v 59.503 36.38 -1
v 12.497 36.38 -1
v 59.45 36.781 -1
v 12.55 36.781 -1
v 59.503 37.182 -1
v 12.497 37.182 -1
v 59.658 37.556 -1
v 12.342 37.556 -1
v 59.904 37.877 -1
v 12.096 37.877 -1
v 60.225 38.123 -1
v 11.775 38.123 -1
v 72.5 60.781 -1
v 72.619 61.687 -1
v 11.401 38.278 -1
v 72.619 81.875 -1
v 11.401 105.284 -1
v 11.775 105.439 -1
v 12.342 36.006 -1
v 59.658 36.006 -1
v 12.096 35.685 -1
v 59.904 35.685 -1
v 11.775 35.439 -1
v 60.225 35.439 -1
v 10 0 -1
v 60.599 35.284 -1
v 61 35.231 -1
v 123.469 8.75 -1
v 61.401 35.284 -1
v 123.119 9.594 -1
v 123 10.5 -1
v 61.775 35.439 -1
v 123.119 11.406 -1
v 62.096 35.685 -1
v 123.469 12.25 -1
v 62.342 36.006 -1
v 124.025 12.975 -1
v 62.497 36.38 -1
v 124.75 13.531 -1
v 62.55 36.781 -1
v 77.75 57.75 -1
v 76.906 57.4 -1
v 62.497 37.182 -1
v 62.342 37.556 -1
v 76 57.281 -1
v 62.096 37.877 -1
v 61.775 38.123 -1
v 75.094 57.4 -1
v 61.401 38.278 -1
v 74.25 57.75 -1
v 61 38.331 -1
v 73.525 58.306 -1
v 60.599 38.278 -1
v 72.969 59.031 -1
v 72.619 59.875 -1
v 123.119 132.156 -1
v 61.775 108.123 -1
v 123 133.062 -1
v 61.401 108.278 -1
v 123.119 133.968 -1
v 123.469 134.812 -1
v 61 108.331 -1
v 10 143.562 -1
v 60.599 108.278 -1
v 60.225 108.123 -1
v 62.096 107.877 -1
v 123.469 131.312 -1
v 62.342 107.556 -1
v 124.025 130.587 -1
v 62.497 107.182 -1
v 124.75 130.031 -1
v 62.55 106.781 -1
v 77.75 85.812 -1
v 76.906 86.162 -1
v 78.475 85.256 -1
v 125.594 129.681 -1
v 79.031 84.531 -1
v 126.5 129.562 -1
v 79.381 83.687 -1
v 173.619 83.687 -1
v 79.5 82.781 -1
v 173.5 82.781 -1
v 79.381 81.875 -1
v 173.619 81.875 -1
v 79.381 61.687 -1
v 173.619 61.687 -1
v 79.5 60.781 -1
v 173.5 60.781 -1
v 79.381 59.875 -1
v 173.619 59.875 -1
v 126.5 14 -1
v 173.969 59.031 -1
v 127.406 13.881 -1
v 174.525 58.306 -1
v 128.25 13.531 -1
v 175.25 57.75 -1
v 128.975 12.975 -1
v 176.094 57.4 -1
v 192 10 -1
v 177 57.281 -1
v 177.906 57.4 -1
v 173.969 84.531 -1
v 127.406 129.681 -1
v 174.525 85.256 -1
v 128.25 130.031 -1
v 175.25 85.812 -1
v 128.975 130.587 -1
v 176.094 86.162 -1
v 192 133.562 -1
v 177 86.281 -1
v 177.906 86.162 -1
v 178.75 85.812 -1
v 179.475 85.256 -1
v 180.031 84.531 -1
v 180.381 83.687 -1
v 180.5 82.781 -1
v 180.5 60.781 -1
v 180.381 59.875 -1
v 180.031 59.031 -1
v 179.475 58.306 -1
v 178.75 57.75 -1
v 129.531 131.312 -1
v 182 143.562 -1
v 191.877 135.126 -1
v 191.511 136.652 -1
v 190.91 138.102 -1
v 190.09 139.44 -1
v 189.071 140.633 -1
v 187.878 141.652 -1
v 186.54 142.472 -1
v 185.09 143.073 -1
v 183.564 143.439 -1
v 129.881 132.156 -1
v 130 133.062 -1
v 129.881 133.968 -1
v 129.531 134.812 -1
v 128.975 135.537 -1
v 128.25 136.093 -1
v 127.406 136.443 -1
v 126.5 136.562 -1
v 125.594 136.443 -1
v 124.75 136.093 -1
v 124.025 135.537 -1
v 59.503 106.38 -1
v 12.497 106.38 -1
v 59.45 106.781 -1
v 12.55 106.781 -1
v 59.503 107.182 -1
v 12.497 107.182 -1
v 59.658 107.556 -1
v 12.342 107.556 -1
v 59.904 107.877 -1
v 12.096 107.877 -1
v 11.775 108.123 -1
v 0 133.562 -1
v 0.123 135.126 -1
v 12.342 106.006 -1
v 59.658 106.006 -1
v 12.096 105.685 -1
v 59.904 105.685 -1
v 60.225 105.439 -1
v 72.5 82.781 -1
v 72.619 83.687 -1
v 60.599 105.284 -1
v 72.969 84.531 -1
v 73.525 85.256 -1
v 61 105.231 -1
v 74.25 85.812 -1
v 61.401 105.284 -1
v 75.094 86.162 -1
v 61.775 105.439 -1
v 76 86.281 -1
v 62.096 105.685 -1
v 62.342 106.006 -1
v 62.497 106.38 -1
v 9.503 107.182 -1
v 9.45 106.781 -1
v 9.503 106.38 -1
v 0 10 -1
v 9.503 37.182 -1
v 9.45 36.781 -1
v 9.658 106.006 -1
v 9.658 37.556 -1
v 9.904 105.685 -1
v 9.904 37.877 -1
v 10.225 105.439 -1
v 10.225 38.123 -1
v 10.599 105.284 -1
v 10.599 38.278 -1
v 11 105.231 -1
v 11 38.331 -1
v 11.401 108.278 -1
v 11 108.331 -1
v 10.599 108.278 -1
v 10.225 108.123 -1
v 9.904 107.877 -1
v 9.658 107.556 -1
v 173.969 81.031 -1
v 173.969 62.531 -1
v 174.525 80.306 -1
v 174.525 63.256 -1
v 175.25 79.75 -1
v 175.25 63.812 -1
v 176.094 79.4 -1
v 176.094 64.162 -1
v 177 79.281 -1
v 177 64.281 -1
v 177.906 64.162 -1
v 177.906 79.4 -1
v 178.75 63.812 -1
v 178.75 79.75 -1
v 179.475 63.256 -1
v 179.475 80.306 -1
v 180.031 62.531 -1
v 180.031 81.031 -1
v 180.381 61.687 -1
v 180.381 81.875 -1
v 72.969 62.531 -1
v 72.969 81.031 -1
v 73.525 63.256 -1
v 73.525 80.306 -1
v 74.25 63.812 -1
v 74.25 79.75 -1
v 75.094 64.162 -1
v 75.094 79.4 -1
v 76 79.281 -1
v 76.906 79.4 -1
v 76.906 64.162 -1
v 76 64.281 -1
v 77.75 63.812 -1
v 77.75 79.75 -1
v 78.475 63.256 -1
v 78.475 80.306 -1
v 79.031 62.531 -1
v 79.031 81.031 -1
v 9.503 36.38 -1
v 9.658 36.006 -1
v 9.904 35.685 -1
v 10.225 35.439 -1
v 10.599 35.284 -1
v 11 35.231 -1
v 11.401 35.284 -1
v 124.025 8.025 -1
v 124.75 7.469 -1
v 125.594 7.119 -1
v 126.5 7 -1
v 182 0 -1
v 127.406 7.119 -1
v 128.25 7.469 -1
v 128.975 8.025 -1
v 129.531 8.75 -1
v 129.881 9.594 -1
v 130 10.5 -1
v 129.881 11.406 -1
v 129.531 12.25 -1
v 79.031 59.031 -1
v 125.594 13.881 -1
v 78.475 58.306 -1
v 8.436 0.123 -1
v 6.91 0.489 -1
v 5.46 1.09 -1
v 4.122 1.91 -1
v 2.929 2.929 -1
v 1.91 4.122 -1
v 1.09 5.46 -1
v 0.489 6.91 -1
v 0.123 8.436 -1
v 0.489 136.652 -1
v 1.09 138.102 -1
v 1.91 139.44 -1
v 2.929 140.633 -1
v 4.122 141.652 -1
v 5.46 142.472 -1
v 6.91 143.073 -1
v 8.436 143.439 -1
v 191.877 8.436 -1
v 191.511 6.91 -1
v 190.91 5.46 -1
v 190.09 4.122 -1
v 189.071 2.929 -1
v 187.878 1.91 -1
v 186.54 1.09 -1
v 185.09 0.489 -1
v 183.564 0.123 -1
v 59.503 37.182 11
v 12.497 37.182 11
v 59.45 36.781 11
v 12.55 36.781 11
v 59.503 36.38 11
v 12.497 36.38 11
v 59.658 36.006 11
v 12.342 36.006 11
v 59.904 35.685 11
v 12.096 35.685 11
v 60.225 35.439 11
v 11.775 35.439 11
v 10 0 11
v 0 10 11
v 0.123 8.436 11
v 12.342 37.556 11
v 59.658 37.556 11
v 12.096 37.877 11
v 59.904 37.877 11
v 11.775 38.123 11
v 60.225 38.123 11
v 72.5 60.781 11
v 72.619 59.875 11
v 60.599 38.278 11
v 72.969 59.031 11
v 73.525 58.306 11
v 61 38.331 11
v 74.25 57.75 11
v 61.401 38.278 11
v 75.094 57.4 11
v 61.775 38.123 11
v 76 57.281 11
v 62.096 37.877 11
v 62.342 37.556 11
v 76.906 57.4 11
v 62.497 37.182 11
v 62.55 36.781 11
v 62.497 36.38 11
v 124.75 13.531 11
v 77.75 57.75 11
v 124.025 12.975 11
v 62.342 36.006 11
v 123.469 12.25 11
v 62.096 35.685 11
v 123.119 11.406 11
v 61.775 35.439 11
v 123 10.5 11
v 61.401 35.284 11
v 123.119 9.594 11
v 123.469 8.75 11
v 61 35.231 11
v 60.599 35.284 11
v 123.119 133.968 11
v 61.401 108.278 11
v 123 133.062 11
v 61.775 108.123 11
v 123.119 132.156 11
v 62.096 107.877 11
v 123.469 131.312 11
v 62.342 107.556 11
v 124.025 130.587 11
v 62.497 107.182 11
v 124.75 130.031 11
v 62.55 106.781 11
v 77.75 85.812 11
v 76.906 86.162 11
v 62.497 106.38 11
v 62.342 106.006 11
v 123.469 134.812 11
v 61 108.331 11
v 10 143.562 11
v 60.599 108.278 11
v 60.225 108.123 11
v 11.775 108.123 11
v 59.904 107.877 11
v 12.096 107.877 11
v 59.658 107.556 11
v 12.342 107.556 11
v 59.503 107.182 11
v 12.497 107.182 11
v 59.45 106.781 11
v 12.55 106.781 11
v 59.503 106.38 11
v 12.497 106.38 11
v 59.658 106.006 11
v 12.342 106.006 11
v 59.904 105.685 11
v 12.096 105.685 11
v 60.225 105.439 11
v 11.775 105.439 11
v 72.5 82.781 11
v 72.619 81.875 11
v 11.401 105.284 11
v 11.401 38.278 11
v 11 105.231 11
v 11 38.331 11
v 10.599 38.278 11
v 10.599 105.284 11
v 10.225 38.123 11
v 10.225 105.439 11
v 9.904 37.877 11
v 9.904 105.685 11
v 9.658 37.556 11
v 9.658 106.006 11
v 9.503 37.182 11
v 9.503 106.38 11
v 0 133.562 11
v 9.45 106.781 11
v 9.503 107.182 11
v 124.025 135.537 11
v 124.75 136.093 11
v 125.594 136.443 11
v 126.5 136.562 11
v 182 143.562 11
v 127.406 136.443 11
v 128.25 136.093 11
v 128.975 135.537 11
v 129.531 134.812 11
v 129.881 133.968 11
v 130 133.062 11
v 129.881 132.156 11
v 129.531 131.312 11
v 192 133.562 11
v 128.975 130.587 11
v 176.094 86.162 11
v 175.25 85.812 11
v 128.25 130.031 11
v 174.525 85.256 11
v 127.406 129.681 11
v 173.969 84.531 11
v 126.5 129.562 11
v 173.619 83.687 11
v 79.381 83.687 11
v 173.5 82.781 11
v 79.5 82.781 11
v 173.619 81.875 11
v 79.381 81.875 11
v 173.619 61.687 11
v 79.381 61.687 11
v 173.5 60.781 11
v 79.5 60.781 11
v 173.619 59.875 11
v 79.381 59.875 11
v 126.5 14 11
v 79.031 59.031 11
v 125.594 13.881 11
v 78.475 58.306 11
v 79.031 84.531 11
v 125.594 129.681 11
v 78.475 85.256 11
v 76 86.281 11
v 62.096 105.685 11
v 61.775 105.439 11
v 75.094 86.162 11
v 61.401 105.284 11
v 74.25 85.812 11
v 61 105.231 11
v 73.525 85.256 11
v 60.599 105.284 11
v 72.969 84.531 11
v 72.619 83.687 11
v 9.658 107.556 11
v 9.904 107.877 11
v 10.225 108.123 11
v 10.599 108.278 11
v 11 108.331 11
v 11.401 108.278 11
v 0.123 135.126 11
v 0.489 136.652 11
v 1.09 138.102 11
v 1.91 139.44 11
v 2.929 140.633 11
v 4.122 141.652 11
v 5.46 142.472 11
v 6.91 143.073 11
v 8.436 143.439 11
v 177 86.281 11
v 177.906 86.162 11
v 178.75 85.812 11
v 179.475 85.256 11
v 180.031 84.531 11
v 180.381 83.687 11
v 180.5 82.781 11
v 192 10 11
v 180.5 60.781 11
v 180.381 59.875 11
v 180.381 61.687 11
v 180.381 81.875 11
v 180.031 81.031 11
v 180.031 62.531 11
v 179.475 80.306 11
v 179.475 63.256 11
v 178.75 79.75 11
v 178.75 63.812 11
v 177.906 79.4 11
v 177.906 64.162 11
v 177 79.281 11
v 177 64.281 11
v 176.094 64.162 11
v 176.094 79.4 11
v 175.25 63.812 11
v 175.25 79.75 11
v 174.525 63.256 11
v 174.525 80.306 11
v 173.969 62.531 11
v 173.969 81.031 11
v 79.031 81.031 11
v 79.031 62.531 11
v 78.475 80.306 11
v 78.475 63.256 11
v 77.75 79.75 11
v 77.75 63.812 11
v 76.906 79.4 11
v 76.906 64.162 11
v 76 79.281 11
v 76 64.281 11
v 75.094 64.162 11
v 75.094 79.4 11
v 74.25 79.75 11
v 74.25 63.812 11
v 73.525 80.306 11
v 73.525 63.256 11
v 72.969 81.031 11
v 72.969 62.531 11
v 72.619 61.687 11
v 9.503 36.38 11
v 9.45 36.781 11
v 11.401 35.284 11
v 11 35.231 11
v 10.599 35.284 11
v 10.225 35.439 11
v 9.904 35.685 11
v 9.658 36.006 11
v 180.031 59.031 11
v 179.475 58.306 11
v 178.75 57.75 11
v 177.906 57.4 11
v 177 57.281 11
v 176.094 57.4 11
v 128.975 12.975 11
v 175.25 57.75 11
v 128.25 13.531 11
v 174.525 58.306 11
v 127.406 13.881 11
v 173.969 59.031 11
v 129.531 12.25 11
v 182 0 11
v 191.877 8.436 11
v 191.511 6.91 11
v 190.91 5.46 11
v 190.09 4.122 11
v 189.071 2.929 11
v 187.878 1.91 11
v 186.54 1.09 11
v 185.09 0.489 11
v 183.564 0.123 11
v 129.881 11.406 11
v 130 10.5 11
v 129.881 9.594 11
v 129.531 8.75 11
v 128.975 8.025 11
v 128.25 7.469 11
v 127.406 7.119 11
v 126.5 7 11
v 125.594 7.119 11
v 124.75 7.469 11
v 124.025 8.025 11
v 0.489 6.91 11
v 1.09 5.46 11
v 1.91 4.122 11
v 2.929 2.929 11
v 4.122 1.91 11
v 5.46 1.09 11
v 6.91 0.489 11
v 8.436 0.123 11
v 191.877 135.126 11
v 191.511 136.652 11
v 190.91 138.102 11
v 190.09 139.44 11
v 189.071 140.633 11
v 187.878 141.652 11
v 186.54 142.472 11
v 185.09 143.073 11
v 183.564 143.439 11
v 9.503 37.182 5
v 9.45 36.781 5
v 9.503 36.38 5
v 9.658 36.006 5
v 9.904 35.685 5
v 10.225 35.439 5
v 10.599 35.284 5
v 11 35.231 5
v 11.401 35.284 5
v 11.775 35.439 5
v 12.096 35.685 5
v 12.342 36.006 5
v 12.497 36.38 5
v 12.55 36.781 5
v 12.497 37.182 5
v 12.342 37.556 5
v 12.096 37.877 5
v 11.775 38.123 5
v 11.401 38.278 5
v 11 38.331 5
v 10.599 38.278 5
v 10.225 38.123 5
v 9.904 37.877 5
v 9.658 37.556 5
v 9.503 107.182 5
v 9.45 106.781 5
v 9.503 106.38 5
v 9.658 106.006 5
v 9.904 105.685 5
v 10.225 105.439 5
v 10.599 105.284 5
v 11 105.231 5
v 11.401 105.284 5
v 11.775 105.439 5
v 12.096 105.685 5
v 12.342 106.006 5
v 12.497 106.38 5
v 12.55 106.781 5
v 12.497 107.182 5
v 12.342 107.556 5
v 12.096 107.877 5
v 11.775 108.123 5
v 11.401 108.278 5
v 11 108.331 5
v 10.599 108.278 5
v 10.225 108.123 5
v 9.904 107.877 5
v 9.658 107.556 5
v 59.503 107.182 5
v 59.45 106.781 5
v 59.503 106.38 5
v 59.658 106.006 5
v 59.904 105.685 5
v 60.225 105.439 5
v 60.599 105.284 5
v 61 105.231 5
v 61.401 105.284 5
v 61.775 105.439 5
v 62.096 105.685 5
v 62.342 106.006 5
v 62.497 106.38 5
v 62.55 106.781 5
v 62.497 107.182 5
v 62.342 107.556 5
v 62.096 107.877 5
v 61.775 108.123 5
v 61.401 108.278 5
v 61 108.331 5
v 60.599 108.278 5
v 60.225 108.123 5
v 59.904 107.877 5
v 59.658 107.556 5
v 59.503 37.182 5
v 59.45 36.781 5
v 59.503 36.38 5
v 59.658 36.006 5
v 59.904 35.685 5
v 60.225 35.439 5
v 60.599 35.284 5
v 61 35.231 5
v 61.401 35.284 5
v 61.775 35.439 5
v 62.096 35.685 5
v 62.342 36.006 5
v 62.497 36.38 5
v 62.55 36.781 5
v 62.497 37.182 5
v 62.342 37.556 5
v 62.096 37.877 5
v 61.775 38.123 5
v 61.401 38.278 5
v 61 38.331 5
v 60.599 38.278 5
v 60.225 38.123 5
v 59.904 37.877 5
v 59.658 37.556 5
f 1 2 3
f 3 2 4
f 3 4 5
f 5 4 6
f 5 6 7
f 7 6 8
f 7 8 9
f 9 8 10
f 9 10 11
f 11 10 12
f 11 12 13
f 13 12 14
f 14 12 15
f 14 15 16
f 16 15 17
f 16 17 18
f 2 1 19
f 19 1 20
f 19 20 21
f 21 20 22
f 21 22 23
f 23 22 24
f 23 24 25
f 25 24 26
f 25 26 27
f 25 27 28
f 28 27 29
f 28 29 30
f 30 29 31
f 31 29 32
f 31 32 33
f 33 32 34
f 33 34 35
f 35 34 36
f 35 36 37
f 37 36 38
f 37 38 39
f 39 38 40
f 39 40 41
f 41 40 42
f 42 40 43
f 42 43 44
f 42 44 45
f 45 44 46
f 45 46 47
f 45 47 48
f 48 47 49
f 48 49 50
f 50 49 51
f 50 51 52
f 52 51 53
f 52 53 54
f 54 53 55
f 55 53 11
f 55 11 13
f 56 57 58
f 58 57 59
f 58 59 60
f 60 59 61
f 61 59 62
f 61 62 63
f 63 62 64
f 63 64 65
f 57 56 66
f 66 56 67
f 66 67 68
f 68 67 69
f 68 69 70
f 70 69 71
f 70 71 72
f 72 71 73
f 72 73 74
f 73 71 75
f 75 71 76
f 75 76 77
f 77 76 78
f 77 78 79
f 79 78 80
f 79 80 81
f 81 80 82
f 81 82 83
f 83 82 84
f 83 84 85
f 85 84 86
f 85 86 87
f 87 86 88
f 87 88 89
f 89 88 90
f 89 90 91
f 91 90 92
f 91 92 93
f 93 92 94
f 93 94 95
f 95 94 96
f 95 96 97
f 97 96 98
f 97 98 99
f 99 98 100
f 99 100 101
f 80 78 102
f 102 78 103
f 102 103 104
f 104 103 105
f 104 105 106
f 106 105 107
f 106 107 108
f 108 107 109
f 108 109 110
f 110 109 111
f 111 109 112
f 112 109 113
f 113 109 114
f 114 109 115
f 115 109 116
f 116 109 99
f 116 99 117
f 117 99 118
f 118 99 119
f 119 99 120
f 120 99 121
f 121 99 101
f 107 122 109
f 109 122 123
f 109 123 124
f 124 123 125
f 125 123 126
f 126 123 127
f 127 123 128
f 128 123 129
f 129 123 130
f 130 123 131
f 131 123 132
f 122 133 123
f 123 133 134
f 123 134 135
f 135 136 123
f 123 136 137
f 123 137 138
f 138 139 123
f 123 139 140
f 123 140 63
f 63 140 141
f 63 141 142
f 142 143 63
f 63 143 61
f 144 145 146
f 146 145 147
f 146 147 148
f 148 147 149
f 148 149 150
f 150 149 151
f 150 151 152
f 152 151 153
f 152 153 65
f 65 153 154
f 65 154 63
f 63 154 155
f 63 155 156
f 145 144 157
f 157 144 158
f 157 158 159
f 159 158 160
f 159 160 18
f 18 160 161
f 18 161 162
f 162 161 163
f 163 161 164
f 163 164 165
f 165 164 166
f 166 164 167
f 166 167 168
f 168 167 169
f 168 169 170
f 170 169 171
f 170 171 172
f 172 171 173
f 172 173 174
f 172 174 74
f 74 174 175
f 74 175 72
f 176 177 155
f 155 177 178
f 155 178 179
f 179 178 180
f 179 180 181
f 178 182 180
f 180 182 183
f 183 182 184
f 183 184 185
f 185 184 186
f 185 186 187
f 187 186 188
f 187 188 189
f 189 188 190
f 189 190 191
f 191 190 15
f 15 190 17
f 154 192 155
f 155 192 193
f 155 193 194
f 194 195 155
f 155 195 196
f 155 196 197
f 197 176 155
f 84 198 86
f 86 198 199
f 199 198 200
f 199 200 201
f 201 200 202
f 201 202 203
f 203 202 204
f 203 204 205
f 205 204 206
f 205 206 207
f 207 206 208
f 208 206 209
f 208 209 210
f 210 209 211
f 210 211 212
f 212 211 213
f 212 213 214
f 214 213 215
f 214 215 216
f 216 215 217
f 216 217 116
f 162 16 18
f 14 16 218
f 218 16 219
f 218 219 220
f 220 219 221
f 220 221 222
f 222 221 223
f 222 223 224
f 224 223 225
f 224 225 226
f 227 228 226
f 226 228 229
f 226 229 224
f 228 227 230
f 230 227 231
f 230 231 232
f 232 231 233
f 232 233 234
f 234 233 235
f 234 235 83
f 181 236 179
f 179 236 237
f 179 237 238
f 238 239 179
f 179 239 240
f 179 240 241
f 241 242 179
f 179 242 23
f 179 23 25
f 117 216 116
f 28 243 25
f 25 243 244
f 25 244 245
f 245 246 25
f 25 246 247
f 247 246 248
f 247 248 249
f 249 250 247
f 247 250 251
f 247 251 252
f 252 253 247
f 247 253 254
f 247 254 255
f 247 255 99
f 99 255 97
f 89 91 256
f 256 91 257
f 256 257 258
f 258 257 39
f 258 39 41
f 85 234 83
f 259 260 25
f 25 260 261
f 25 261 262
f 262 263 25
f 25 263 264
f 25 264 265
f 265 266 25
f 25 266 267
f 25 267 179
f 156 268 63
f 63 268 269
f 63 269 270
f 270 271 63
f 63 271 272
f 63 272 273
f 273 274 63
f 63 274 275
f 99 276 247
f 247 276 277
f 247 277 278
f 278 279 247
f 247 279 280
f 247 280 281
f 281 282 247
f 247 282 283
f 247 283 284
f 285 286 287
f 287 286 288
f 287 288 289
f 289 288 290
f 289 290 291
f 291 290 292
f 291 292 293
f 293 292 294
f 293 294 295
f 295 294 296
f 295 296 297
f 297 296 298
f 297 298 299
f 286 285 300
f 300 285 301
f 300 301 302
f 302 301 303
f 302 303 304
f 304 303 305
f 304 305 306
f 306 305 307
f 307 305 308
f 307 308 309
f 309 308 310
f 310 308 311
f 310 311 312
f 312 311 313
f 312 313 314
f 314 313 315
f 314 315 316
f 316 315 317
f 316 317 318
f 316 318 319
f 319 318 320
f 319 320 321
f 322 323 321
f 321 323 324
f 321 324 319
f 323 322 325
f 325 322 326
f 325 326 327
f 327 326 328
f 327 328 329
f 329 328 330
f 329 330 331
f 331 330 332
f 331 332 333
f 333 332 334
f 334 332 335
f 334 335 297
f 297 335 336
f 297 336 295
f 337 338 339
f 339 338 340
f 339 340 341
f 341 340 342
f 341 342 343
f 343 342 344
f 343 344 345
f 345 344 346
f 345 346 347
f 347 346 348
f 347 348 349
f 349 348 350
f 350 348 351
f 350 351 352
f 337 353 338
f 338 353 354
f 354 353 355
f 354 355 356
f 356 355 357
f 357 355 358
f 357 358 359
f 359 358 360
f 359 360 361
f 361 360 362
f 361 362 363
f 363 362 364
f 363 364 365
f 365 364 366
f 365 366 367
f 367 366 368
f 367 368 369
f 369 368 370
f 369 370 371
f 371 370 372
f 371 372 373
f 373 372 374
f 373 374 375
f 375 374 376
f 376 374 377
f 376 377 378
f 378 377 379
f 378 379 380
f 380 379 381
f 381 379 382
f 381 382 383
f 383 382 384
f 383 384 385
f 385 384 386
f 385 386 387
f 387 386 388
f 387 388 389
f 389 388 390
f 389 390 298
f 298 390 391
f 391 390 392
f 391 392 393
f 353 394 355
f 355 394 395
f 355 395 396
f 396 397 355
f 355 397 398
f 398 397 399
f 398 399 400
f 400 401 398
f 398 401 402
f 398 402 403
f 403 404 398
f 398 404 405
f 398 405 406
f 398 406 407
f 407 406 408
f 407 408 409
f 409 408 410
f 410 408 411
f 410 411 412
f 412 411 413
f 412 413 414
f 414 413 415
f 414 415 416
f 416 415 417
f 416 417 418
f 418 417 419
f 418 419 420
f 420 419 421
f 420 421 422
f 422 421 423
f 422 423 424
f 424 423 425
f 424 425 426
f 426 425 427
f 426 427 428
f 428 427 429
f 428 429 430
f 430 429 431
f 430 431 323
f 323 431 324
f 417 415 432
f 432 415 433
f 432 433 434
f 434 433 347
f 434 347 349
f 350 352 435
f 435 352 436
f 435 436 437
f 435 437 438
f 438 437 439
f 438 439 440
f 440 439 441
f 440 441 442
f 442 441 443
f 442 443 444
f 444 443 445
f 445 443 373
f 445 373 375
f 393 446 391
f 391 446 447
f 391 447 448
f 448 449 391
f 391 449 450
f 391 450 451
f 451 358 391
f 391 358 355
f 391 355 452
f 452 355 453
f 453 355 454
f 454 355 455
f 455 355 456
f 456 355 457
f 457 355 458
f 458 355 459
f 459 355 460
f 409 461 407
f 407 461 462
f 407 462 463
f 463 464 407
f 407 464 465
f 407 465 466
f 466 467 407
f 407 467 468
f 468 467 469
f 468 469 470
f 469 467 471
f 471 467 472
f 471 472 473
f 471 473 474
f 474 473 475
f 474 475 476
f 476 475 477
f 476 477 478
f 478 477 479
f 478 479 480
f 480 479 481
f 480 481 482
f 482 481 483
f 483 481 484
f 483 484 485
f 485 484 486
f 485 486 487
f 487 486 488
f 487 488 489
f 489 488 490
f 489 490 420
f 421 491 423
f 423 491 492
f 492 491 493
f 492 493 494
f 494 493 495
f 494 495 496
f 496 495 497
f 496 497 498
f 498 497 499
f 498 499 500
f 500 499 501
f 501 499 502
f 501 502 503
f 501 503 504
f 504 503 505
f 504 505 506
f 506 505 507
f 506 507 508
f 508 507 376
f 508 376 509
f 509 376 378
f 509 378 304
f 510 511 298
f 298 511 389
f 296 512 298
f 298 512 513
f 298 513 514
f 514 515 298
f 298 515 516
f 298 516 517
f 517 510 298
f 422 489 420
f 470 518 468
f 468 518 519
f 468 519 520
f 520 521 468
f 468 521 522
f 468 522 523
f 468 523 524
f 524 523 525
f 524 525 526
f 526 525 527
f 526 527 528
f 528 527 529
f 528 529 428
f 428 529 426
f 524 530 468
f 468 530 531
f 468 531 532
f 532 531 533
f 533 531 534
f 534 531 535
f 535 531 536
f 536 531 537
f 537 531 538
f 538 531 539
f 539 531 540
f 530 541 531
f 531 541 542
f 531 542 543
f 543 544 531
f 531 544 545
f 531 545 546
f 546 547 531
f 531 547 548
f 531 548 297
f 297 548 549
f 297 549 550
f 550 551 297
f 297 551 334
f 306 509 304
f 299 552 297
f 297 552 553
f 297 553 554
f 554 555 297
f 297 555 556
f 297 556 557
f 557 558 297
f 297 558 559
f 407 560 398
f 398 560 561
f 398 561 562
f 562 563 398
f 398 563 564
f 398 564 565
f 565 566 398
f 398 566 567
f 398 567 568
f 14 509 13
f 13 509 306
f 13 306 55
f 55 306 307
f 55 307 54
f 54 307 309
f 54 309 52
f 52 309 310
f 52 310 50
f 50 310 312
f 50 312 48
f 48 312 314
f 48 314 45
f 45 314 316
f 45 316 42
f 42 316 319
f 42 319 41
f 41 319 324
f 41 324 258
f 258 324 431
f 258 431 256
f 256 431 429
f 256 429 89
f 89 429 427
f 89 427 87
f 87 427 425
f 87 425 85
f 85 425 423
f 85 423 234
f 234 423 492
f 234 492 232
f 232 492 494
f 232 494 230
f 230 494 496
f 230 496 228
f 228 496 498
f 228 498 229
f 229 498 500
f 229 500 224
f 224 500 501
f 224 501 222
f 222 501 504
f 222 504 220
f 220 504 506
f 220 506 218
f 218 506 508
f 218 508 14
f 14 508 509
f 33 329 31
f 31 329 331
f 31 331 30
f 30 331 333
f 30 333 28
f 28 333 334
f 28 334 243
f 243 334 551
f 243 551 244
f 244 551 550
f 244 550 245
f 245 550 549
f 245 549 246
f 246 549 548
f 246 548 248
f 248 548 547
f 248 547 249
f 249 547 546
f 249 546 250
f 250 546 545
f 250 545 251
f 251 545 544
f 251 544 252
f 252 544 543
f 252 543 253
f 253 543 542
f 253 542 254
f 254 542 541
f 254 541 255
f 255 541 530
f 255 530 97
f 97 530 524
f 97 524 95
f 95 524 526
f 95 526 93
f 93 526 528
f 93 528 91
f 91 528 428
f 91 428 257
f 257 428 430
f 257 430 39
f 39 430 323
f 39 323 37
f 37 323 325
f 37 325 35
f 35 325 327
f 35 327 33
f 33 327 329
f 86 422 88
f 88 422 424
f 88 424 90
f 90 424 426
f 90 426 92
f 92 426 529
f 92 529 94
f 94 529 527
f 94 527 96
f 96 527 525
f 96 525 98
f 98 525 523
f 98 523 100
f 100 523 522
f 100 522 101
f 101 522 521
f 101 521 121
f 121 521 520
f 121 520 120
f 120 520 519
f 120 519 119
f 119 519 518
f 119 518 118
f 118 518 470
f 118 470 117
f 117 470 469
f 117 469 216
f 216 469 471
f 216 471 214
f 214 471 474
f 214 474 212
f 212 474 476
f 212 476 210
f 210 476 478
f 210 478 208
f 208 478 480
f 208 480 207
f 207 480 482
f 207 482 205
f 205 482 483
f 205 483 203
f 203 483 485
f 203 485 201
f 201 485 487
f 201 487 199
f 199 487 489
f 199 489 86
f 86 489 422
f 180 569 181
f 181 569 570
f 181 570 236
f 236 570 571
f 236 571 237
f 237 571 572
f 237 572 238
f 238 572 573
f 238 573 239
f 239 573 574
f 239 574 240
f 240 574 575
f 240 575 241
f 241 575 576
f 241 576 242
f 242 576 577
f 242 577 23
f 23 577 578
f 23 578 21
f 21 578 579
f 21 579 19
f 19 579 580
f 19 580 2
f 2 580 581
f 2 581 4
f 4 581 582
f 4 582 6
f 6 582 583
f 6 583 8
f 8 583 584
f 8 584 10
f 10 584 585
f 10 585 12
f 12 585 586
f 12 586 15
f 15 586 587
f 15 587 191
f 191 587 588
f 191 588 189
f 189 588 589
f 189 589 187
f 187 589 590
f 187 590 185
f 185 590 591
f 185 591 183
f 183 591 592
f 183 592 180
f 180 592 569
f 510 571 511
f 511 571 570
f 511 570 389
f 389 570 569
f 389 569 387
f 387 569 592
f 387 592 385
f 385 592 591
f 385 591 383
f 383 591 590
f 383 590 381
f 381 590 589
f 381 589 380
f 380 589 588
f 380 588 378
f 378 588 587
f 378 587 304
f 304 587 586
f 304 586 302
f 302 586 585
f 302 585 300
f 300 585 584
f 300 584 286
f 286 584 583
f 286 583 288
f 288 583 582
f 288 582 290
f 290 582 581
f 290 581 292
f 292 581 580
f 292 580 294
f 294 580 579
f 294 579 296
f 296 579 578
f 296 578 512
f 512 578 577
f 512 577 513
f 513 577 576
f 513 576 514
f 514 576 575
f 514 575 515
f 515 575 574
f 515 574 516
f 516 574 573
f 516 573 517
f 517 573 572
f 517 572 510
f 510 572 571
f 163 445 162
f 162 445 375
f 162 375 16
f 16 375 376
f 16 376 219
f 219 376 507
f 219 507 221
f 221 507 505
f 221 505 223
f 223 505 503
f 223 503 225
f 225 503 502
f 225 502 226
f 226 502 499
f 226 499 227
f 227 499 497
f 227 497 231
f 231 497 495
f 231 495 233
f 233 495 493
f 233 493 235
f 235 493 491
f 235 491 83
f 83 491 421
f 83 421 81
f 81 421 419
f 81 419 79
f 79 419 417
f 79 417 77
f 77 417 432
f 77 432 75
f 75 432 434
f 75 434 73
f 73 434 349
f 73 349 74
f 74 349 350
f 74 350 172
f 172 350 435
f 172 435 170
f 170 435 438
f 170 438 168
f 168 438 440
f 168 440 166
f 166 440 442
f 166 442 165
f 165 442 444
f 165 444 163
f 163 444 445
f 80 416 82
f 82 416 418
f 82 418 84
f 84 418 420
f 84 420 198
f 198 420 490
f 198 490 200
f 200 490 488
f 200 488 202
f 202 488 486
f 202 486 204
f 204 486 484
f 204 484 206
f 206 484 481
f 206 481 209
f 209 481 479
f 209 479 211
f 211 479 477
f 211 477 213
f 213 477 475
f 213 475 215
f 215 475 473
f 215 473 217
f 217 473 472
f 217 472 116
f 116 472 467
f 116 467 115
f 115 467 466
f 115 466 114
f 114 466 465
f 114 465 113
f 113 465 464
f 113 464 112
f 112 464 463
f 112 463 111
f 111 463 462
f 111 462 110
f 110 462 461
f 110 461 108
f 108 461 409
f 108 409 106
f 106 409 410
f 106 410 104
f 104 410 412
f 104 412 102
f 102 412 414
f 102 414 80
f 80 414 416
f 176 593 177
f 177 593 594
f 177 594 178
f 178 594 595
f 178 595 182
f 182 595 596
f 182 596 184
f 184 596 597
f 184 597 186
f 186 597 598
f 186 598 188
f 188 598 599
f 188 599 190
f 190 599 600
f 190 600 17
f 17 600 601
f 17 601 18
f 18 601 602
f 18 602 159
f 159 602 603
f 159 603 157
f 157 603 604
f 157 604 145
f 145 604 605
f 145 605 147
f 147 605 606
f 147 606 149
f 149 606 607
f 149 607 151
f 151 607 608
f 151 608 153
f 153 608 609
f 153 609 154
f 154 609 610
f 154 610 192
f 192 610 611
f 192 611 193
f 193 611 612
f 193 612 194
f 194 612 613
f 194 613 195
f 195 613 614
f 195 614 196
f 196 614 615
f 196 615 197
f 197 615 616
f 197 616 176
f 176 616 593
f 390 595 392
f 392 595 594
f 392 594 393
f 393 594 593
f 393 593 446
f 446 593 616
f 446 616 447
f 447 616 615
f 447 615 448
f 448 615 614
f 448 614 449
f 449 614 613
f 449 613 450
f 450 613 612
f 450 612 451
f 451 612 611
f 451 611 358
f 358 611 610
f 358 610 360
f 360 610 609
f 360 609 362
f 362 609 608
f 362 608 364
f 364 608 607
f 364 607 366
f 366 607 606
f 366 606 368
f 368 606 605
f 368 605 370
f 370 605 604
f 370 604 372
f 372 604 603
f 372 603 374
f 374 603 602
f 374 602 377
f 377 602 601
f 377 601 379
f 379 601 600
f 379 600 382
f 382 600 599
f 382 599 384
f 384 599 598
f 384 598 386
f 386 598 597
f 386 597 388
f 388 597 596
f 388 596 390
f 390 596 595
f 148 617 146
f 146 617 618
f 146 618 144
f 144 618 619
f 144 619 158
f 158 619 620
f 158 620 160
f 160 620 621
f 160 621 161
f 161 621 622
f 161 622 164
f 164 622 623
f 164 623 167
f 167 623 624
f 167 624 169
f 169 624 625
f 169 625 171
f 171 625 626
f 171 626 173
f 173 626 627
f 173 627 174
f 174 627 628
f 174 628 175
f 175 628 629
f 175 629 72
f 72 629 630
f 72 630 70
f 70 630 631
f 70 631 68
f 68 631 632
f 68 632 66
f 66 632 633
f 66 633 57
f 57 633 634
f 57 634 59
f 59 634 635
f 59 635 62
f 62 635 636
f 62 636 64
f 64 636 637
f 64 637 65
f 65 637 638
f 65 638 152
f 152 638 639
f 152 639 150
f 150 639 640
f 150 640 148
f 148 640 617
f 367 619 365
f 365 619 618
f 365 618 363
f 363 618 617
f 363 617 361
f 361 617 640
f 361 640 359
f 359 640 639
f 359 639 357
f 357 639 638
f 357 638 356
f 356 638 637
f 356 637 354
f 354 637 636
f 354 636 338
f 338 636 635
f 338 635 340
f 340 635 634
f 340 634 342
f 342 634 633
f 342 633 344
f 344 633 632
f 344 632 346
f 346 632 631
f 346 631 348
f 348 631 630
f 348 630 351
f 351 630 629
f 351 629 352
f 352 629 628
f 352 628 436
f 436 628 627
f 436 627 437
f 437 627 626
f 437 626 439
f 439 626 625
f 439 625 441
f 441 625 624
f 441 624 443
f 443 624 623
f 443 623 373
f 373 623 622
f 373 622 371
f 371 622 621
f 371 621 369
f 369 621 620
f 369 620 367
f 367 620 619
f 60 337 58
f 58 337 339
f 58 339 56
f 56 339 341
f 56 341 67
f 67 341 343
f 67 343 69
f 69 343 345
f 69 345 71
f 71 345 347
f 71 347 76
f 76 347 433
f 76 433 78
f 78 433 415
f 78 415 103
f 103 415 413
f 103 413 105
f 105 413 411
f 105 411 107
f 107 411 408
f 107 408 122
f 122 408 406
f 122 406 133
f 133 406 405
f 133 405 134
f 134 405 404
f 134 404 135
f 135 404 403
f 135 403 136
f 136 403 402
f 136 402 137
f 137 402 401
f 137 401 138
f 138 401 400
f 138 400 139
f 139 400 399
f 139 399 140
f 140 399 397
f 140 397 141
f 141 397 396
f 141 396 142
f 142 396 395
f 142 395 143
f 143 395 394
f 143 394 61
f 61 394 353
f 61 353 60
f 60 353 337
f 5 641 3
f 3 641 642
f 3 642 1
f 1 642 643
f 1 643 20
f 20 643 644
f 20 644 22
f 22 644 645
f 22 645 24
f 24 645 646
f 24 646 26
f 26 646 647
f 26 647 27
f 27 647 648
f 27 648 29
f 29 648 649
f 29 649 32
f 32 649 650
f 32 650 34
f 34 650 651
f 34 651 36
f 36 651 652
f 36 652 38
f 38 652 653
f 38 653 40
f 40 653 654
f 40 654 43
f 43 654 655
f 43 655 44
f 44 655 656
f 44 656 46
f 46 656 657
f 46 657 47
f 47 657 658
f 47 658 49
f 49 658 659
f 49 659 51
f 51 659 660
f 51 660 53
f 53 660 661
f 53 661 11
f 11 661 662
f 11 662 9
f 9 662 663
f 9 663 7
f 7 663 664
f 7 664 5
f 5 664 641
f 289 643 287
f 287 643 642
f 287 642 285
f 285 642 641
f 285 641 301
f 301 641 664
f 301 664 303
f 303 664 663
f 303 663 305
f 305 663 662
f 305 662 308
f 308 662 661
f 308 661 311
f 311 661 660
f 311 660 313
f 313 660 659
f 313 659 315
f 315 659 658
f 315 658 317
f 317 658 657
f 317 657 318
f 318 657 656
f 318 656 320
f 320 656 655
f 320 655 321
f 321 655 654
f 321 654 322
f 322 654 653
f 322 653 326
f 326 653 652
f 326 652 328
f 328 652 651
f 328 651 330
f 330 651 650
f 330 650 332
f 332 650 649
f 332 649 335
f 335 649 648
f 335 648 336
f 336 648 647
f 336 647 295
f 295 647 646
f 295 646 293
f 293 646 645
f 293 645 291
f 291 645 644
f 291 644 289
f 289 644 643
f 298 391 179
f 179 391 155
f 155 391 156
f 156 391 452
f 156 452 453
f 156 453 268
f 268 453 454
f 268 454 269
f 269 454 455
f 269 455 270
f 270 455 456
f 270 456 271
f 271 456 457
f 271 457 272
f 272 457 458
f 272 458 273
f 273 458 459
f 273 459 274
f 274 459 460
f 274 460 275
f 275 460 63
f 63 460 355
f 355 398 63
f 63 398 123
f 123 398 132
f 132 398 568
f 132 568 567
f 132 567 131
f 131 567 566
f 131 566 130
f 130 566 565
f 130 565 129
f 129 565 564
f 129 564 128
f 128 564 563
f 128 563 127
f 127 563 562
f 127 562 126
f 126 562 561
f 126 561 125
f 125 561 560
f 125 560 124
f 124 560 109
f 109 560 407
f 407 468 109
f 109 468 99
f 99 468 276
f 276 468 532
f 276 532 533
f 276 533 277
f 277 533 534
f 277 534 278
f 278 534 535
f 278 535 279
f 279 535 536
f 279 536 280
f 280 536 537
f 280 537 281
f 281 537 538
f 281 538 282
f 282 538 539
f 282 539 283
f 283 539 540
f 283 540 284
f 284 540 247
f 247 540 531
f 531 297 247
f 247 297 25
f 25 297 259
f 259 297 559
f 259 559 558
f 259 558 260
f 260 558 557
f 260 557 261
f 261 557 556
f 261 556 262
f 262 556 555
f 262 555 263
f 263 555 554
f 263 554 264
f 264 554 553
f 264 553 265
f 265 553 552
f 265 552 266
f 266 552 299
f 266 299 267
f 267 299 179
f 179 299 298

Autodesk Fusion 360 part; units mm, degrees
sketch "Sketch1" plane through (0, 0, 0) normal (0, 0, 1) x (1, 0, 0)
  line L0 (10, 0) -> (182, 0)
  line L1 (192, 10) -> (192, 133.562)
  line L2 (182, 143.562) -> (10, 143.562)
  line L3 (0, 133.562) -> (0, 10)
  line L4 (126.5, 133.062) -> (126.5, 10.5)
  circle A0 centre (126.5, 133.062) radius 3.5
  circle A1 centre (126.5, 10.5) radius 3.5
  line L5 (126.5, 71.781) -> (192, 71.781)
  line L6 (177, 71.781) -> (76, 71.781)
  line L7 (76, 82.781) -> (76, 60.781)
  circle A2 centre (76, 82.781) radius 3.5
  circle A3 centre (76, 60.781) radius 3.5
  line L8 (177, 82.781) -> (177, 60.781)
  circle A4 centre (177, 82.781) radius 3.5
  circle A5 centre (177, 60.781) radius 3.5
  line L9 (11, 106.781) -> (61, 106.781)
  line L10 (61, 106.781) -> (61, 36.781)
  line L11 (61, 36.781) -> (11, 36.781)
  line L12 (11, 36.781) -> (11, 106.781)
  line L13 (11, 71.781) -> (0, 71.781)
  circle A6 centre (61, 106.781) radius 1.55
  circle A7 centre (11, 106.781) radius 1.55
  circle A8 centre (11, 36.781) radius 1.55
  circle A9 centre (61, 36.781) radius 1.55
  arc A10 (10, 143.562) -> (0, 133.562) centre (10, 133.562) ccw
  arc A11 (192, 133.562) -> (182, 143.562) centre (182, 133.562) ccw
  arc A12 (182, 0) -> (192, 10) centre (182, 10) ccw
  arc A13 (0, 10) -> (10, 0) centre (10, 10) ccw
  point P0 (192, 0)
  point P1 (192, 143.562)
  point P2 (76, 71.781)
  point P3 (126.5, 71.781)
  dimension "d1" = 143.562
  dimension "d3" = 7
  dimension "d4" = 7
  dimension "d5" = 122.562
  dimension "d6" = 90
  dimension "d7" = 101
  dimension "d8" = 22
  dimension "d9" = 7
  dimension "d10" = 7
  dimension "d11" = 15
  dimension "d12" = 50
  dimension "d13" = 70
  dimension "d14" = 15
  dimension "d15" = 90
  dimension "d16" = 3.1
  dimension "d17" = 3.1
  dimension "d18" = 3.1
  dimension "d19" = 3.1
  dimension "d20" = 10
  dimension "d21" = 10
  dimension "d22" = 10
  dimension "d23" = 10
  dimension "d42" = 11
extrude "Extrude1" add sketch "Sketch1" along normal blind 10 contours L9 L10 L11 L12 A6 A7 A8 A9 | L0 L1 L2 L3 A10 A11 A12 A13
extrude "Extrude2" add 1 faces at (162.3446, 23.2161, 10) along direction (0, 0, 1) blind 1
extrude "Extrude3" add 1 faces at (162.3446, 23.2161, 0) along direction (0, 0, -1) blind 1
equation "d7 = 90 mm + 11 mm"
